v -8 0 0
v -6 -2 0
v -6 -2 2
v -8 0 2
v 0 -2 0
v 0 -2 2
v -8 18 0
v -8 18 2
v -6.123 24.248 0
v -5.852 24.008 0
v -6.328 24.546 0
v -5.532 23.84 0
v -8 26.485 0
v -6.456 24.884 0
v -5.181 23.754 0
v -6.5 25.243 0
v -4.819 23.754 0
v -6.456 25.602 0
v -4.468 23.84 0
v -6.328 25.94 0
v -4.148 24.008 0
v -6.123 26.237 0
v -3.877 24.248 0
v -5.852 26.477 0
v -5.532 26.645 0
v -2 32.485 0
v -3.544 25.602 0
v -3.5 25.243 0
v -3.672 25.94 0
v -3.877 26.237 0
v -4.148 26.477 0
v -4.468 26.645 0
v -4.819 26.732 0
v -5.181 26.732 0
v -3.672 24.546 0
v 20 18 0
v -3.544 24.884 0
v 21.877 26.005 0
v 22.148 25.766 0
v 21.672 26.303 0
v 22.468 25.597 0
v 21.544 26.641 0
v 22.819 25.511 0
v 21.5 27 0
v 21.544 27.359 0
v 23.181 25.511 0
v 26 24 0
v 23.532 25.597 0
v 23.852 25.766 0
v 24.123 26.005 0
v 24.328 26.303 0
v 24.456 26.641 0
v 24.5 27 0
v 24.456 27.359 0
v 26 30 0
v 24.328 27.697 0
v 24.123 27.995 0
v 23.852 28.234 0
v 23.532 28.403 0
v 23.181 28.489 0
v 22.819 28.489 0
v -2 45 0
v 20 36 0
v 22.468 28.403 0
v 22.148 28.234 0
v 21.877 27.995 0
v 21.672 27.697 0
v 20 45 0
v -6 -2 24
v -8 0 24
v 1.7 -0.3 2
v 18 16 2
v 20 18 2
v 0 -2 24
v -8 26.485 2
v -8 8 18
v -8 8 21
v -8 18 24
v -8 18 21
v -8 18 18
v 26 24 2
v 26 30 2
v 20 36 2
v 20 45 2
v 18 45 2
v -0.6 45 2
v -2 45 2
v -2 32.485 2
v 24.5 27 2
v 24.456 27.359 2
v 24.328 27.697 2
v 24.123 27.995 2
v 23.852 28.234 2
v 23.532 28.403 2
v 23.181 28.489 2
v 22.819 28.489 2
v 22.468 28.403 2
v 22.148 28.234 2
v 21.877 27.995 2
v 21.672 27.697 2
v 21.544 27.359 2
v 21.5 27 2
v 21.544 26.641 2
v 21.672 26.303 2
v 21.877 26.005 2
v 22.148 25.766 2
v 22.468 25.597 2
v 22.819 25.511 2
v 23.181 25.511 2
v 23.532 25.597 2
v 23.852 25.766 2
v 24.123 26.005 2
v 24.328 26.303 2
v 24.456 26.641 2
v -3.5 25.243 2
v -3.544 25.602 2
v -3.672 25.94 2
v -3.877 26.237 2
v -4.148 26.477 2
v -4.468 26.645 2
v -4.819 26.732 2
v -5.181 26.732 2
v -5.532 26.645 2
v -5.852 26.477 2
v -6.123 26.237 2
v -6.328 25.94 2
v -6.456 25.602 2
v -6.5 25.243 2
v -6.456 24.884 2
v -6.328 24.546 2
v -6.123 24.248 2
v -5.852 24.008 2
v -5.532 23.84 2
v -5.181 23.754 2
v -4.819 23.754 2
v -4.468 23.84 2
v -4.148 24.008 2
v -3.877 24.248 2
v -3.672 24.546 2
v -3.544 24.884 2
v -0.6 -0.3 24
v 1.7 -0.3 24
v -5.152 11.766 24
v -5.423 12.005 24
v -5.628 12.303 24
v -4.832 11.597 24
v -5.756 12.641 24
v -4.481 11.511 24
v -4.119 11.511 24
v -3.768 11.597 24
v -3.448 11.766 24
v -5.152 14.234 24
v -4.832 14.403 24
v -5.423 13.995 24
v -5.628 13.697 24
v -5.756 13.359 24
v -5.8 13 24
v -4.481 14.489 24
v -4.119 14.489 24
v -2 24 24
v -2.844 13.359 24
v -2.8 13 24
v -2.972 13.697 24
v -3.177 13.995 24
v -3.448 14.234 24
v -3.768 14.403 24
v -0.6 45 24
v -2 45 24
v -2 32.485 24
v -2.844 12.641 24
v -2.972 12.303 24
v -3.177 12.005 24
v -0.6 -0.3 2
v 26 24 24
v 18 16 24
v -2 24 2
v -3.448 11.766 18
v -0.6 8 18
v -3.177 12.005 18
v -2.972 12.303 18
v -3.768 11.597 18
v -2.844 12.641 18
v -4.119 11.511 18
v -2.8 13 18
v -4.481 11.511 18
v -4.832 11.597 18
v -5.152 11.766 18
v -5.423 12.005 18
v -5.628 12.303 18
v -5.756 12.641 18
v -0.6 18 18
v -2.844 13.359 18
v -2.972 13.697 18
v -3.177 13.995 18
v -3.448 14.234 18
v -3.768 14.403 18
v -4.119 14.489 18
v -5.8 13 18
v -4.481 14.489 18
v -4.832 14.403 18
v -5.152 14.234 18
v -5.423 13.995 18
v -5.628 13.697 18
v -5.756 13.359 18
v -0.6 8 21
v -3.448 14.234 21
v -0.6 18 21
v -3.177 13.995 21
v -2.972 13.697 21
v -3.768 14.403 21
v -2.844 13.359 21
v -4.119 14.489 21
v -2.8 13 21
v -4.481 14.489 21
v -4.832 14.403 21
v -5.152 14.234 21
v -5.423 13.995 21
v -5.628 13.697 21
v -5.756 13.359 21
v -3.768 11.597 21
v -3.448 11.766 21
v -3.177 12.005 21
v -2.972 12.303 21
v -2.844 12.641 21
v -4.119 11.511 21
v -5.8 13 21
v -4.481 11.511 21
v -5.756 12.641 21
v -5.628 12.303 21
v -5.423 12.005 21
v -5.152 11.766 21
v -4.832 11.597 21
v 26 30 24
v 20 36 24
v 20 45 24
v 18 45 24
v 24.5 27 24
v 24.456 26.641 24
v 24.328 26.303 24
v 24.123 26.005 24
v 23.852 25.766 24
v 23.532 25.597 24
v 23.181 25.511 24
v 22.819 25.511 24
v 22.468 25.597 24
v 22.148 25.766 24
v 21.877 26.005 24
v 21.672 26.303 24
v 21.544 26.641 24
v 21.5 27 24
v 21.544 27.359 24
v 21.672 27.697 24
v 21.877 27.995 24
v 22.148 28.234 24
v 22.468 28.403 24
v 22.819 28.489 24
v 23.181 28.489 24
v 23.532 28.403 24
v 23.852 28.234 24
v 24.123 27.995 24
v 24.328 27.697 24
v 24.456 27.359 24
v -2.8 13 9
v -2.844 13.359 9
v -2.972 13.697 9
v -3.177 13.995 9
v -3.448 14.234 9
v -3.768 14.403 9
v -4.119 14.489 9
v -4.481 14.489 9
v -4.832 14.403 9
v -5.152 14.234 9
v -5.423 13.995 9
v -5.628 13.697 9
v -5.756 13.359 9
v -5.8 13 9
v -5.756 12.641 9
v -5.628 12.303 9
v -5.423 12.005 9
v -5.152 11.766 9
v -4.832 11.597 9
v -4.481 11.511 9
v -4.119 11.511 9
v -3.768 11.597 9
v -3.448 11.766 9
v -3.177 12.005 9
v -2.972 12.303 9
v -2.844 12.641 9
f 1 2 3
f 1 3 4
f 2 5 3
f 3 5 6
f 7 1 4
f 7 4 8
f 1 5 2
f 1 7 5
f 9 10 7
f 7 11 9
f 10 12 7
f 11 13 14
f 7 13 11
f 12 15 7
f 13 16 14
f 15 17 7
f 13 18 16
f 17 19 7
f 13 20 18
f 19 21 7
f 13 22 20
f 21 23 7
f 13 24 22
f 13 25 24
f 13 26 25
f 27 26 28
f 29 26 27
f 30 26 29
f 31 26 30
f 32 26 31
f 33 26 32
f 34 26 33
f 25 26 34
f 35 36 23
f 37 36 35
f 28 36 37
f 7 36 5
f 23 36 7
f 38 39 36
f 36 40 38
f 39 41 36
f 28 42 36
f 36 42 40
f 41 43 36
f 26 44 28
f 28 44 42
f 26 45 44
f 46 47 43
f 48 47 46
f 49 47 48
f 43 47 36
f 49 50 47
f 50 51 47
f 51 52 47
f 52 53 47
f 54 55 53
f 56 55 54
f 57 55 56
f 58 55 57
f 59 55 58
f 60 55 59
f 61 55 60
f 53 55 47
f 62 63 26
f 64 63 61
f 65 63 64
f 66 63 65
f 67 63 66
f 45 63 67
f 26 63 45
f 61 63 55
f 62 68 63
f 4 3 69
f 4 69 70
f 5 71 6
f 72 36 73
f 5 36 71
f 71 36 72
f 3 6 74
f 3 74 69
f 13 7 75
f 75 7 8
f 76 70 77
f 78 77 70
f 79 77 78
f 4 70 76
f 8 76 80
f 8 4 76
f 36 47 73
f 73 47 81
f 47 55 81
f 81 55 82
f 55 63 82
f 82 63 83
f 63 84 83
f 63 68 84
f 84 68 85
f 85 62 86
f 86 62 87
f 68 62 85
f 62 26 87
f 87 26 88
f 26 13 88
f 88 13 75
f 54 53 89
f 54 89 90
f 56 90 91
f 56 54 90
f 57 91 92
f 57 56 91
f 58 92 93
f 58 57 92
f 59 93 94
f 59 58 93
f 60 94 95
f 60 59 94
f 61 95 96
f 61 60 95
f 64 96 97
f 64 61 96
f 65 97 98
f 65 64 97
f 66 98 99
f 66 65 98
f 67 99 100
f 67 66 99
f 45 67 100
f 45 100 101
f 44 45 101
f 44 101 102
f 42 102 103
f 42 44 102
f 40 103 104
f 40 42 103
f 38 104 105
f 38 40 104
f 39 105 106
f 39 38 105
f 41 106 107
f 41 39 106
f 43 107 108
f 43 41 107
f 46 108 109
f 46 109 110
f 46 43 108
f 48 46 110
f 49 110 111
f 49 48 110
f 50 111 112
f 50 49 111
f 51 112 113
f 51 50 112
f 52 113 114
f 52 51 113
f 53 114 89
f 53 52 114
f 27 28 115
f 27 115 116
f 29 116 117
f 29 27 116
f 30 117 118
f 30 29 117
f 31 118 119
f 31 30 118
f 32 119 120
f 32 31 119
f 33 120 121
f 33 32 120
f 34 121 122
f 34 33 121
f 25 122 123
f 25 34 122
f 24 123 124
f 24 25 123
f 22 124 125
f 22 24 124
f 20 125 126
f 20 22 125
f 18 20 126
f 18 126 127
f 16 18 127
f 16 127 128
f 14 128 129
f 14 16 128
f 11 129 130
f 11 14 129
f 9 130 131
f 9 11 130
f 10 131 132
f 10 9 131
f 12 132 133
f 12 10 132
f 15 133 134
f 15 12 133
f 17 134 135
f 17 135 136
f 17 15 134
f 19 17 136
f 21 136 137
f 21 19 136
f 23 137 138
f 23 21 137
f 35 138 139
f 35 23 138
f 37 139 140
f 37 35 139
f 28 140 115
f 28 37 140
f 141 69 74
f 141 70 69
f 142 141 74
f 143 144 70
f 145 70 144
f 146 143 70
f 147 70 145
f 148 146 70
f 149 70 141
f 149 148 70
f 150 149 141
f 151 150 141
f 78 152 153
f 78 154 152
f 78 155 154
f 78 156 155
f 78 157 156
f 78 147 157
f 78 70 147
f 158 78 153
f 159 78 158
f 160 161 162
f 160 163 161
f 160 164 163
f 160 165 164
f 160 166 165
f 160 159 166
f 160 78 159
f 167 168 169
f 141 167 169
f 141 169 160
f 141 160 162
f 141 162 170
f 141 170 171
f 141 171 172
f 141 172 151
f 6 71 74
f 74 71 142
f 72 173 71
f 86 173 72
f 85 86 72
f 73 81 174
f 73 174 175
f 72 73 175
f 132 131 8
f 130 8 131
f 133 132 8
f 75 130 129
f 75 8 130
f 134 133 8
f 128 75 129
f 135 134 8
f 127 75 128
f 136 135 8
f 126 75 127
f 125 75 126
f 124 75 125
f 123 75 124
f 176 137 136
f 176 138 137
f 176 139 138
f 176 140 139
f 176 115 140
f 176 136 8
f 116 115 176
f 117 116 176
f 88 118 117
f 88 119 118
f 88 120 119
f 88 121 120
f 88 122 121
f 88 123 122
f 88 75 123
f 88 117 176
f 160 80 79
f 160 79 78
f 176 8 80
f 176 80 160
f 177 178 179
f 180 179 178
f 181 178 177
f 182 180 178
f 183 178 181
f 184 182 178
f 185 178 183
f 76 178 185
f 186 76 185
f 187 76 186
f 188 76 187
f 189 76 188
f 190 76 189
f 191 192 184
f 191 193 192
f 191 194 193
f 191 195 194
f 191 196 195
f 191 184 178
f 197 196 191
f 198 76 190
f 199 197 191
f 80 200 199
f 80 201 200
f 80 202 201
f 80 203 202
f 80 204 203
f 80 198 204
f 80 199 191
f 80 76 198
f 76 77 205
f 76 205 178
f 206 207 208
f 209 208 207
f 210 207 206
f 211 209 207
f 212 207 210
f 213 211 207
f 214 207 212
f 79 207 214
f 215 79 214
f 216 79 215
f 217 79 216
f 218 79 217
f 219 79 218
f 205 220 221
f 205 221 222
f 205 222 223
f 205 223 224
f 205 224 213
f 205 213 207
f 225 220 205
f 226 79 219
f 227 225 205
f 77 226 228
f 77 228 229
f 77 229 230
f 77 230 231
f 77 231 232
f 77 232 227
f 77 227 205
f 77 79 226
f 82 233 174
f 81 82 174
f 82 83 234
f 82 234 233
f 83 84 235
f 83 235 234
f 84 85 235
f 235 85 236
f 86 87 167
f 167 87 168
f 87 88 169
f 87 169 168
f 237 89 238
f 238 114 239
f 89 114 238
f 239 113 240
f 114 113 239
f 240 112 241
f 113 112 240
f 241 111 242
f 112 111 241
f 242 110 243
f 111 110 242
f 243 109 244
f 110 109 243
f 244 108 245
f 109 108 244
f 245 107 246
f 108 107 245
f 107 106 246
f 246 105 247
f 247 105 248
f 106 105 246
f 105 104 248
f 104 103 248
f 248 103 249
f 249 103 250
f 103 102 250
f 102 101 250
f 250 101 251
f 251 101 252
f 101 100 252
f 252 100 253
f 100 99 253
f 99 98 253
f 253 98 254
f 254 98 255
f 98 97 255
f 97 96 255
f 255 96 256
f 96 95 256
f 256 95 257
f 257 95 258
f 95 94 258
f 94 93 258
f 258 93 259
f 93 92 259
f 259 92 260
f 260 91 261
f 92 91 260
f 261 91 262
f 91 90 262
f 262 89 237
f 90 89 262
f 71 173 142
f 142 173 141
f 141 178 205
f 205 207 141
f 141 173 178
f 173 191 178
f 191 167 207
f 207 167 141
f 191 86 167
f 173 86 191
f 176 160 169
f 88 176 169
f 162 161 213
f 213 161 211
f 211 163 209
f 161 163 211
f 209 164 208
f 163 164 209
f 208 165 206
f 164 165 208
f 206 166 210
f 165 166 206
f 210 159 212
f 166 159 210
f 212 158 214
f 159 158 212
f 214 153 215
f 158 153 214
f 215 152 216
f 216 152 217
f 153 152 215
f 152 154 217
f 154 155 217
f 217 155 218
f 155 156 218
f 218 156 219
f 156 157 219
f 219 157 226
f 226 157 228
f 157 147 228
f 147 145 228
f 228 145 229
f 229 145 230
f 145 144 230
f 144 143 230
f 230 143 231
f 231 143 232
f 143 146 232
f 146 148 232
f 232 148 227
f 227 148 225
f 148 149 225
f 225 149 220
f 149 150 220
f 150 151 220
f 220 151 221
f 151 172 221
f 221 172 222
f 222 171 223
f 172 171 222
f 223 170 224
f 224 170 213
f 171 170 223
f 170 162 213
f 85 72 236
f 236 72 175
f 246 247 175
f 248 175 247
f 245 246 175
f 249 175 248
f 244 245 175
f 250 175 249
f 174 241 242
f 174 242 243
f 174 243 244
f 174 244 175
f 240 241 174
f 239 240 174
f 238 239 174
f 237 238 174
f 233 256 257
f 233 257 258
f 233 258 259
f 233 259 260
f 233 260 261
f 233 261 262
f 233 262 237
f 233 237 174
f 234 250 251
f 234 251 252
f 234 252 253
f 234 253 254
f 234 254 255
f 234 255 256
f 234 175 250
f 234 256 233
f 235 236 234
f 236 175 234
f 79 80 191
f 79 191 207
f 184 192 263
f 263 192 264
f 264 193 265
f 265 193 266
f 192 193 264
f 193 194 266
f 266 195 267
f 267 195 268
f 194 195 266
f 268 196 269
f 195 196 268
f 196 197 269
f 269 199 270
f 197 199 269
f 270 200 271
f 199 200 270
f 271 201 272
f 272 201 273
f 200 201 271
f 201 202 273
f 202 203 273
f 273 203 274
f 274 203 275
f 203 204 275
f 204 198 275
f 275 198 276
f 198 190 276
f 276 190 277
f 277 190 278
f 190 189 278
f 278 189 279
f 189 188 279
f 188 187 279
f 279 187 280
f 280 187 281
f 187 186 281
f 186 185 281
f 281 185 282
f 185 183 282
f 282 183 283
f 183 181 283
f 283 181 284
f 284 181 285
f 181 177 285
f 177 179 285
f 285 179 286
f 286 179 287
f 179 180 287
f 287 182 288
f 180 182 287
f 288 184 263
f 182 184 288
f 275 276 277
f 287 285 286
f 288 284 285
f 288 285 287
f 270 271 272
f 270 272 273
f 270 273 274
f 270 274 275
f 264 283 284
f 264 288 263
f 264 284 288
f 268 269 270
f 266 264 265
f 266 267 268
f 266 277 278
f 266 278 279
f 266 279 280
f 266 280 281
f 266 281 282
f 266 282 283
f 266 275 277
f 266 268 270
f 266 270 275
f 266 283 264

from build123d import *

# Parameters (mm, degrees)
SKETCH_R        = 1.5
PAD_DEPTH       = 2
PAD001_DEPTH    = 22
SKETCH002_R     = 1.5
POCKET_DEPTH    = 32
SKETCH003_R     = 1.5
POCKET001_DEPTH = 15
SKETCH004_W     = 10
SKETCH004_H     = 3
POCKET002_DEPTH = 8


with BuildPart() as part:
    # Sketch → Pad (new body)
    with BuildSketch(Plane.XY):
        Polygon((-6, -2), (0, -2), (20, 18), (26, 24), (26, 30), (20, 36), (20, 45), (-2, 45), (-2, 32.485281), (-8, 26.485281), (-8, 18), (-8, 0), align=None)
        with Locations((-5, 25.242641)):
            Circle(SKETCH_R, mode=Mode.SUBTRACT)
        with Locations((23, 27)):
            Circle(SKETCH_R, mode=Mode.SUBTRACT)
    extrude(amount=PAD_DEPTH)

    # Sketch001 (on Face16 of Pad) → Pad001 (join)
    with BuildSketch(Plane.XY.offset(2)):
        Polygon((-2, 32.485281), (-2, 45), (-0.6, 45), (-0.6, -0.3), (1.7, -0.3), (0, -2), (-6, -2), (-8, 0), (-8, 18), (-2, 24), align=None)
        Polygon((20, 45), (18, 45), (18, 16), (26, 24), (26, 30), (20, 36), align=None)
    extrude(amount=PAD001_DEPTH)

    # Sketch002 (on Face31 of Pad001) → Pocket (cut)
    with BuildSketch(Plane(origin=(0, 0, 2), x_dir=(1, 0, 0), z_dir=(0, 0, -1))):
        with Locations((23, -27)):
            Circle(SKETCH002_R)
    extrude(amount=-POCKET_DEPTH, mode=Mode.SUBTRACT)

    # Sketch003 (on Face19 of Pocket) → Pocket001 (cut)
    with BuildSketch(Plane.XY.offset(24)):
        with Locations((-4.3, 13)):
            Circle(SKETCH003_R)
    extrude(amount=-POCKET001_DEPTH, mode=Mode.SUBTRACT)

    # Sketch004 (on Face9 of Pocket001) → Pocket002 (cut)
    with BuildSketch(Plane(origin=(-8, 0, 0), x_dir=(0, -1, 0), z_dir=(-1, 0, 0))):
        with Locations((-13, 19.5)):
            Rectangle(SKETCH004_W, SKETCH004_H)
    extrude(amount=-POCKET002_DEPTH, mode=Mode.SUBTRACT)


solid = part.part
